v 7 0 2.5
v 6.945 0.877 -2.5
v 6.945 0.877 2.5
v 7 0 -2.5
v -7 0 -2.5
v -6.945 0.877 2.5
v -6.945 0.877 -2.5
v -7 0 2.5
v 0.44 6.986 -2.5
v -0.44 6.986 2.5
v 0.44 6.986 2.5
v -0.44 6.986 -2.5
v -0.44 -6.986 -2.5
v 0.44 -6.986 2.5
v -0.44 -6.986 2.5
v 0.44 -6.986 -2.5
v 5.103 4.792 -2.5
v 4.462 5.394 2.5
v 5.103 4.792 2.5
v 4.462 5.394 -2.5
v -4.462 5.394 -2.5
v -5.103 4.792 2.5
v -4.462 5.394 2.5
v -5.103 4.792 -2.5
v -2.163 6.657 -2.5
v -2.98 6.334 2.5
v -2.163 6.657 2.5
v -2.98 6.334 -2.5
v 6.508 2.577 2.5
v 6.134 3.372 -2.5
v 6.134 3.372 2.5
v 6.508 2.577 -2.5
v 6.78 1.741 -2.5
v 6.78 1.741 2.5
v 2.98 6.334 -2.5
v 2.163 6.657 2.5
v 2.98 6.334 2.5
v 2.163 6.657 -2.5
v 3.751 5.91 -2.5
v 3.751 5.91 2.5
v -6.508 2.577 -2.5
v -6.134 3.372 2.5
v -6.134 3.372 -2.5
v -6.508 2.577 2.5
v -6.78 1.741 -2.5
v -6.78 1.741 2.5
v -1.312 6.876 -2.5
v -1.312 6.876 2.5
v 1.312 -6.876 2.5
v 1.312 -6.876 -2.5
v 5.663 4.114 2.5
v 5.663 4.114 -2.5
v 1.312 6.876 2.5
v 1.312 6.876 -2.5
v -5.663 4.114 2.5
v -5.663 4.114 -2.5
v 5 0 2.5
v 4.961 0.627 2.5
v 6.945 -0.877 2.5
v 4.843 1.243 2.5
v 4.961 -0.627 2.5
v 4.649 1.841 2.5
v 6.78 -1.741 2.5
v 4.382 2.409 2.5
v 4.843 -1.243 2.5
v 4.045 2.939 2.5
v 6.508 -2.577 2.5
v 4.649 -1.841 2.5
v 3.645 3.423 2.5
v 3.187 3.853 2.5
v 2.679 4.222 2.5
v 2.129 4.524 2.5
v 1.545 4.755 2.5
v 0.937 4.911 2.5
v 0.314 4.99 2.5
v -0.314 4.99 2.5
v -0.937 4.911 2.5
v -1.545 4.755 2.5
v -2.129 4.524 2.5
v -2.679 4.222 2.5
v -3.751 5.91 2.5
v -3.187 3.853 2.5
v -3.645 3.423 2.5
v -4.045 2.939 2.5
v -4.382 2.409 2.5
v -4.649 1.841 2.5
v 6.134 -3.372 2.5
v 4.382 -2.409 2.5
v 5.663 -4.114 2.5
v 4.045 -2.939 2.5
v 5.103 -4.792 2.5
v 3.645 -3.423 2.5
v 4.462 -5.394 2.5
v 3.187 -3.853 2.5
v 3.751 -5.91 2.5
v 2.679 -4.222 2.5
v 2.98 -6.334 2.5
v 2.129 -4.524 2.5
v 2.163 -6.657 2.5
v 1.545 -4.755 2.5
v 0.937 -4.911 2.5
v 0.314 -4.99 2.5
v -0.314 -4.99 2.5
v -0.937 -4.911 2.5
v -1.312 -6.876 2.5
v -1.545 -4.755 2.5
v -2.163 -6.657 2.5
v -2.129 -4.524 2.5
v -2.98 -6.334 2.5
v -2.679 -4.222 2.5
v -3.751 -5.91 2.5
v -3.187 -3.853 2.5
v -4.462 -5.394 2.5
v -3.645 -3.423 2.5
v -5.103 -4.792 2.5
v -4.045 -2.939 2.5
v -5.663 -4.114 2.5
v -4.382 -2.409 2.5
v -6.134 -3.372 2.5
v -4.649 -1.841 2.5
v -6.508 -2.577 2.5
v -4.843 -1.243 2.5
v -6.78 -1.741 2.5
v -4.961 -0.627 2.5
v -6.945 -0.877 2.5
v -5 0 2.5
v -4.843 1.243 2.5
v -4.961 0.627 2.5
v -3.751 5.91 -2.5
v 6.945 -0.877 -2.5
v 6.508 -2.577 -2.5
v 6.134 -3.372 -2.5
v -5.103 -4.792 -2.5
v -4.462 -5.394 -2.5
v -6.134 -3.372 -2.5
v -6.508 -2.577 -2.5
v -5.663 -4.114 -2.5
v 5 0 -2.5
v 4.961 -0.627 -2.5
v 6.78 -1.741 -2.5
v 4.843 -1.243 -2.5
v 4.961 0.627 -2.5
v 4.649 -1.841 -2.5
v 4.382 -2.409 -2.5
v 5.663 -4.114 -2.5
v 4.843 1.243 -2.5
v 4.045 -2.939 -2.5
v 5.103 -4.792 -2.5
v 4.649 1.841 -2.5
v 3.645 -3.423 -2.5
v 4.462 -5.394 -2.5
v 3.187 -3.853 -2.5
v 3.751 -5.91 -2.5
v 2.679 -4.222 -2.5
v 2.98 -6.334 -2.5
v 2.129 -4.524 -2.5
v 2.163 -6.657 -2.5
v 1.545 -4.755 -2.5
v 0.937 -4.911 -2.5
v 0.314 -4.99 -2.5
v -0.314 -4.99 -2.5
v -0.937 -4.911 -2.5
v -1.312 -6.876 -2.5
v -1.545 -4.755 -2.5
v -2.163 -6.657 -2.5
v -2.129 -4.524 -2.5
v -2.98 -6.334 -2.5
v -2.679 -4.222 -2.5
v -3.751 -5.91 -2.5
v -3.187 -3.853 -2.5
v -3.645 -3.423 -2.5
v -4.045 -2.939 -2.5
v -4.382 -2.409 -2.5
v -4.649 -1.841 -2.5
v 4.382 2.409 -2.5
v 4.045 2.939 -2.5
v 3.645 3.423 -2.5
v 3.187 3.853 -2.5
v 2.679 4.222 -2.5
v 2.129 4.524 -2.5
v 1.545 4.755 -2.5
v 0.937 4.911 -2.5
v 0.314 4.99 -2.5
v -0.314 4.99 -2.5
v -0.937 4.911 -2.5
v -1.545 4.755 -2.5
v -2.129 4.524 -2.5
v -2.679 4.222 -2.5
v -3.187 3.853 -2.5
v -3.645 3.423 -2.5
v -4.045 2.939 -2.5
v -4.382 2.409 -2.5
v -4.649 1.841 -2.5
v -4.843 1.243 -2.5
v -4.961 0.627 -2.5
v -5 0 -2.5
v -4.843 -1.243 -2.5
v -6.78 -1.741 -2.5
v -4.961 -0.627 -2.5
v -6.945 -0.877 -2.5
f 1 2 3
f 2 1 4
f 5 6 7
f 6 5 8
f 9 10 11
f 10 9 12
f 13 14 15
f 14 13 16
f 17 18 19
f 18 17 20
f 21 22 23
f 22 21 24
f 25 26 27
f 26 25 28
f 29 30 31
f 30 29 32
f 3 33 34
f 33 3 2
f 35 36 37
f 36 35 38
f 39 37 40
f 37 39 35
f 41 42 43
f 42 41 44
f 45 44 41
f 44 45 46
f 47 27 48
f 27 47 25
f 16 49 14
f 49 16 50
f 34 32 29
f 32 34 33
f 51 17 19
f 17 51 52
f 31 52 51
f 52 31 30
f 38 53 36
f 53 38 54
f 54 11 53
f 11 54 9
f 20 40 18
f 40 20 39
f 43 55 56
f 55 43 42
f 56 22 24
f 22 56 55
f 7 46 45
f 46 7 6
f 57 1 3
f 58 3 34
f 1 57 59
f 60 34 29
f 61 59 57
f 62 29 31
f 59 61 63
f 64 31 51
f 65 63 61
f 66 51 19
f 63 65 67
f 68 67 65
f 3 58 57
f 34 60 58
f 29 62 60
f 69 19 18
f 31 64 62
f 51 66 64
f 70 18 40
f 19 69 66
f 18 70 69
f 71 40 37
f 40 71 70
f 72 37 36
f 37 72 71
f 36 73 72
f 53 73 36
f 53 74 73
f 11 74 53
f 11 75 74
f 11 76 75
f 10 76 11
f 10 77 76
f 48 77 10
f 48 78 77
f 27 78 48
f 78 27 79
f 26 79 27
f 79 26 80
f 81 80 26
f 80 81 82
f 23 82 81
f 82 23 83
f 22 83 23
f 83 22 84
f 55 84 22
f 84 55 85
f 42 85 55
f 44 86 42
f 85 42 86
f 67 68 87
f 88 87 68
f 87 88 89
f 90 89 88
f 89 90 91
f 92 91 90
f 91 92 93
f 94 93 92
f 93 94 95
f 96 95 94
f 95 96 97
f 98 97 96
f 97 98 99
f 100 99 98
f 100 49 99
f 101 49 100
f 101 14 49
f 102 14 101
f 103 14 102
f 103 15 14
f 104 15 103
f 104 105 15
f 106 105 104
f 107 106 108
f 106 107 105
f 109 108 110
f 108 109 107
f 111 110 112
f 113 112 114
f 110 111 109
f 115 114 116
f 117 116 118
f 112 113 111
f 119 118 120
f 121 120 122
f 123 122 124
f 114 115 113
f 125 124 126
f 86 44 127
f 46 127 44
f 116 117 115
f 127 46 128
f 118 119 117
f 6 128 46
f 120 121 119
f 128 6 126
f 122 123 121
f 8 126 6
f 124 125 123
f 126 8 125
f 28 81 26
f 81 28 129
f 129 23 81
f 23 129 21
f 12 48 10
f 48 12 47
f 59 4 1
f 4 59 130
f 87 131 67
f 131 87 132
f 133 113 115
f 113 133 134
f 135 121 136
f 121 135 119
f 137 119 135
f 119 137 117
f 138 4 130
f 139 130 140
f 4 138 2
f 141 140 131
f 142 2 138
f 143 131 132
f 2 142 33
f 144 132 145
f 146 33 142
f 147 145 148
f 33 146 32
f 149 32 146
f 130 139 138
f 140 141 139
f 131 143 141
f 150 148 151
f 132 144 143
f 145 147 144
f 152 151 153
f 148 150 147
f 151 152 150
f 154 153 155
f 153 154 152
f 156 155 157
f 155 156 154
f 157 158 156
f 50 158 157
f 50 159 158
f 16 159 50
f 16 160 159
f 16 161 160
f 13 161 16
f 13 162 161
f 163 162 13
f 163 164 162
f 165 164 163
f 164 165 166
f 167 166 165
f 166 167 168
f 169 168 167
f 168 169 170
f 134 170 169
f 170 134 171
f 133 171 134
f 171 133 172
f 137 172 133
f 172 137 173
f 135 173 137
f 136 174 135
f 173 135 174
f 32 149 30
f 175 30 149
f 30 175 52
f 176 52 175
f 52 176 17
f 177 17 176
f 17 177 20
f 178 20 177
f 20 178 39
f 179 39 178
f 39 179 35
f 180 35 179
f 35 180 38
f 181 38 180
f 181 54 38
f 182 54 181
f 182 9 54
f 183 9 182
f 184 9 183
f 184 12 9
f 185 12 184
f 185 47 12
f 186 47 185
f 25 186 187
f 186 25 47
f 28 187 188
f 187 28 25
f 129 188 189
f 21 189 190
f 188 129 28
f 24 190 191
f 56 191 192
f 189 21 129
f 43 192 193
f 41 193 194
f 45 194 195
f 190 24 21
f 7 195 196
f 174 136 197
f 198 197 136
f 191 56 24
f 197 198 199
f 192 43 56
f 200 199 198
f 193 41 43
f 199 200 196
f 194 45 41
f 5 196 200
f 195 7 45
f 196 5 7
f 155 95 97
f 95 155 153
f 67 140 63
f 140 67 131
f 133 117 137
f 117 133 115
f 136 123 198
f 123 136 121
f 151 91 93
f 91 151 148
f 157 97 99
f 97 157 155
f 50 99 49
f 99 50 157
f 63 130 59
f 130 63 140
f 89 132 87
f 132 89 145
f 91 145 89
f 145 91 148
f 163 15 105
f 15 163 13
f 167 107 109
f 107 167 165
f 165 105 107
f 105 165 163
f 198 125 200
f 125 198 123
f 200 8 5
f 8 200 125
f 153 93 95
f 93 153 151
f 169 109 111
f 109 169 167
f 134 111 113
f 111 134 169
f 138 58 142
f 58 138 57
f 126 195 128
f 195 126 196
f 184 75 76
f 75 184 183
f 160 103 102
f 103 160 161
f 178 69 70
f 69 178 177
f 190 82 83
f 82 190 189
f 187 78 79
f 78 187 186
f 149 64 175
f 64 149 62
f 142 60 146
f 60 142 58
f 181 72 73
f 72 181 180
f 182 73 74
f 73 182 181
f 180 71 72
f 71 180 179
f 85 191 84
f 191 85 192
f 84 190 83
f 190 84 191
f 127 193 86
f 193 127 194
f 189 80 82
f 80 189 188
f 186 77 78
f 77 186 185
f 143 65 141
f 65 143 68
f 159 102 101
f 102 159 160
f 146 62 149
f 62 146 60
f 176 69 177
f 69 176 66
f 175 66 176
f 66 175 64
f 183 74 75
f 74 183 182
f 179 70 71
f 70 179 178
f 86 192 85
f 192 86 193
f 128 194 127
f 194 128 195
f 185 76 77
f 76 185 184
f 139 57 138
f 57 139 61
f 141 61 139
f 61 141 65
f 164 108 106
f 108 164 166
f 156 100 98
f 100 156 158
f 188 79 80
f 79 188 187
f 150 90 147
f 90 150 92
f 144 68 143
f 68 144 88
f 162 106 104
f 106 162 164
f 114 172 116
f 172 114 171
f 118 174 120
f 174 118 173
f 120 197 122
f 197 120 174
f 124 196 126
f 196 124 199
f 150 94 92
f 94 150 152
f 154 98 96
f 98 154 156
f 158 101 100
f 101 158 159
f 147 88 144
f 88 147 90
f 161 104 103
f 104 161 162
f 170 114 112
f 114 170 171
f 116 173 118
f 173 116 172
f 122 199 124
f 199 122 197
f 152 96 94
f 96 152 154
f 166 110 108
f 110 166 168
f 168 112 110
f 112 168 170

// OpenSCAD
$fn = 50;


difference() {
	union() {
		translate(v = [0, 0, -2.5000000000]) {
			cylinder(h = 5, r = 7.0000000000);
		}
	}
	union() {
		translate(v = [0, 0, -100.0000000000]) {
			cylinder(h = 200, r = 5);
		}
	}
}
